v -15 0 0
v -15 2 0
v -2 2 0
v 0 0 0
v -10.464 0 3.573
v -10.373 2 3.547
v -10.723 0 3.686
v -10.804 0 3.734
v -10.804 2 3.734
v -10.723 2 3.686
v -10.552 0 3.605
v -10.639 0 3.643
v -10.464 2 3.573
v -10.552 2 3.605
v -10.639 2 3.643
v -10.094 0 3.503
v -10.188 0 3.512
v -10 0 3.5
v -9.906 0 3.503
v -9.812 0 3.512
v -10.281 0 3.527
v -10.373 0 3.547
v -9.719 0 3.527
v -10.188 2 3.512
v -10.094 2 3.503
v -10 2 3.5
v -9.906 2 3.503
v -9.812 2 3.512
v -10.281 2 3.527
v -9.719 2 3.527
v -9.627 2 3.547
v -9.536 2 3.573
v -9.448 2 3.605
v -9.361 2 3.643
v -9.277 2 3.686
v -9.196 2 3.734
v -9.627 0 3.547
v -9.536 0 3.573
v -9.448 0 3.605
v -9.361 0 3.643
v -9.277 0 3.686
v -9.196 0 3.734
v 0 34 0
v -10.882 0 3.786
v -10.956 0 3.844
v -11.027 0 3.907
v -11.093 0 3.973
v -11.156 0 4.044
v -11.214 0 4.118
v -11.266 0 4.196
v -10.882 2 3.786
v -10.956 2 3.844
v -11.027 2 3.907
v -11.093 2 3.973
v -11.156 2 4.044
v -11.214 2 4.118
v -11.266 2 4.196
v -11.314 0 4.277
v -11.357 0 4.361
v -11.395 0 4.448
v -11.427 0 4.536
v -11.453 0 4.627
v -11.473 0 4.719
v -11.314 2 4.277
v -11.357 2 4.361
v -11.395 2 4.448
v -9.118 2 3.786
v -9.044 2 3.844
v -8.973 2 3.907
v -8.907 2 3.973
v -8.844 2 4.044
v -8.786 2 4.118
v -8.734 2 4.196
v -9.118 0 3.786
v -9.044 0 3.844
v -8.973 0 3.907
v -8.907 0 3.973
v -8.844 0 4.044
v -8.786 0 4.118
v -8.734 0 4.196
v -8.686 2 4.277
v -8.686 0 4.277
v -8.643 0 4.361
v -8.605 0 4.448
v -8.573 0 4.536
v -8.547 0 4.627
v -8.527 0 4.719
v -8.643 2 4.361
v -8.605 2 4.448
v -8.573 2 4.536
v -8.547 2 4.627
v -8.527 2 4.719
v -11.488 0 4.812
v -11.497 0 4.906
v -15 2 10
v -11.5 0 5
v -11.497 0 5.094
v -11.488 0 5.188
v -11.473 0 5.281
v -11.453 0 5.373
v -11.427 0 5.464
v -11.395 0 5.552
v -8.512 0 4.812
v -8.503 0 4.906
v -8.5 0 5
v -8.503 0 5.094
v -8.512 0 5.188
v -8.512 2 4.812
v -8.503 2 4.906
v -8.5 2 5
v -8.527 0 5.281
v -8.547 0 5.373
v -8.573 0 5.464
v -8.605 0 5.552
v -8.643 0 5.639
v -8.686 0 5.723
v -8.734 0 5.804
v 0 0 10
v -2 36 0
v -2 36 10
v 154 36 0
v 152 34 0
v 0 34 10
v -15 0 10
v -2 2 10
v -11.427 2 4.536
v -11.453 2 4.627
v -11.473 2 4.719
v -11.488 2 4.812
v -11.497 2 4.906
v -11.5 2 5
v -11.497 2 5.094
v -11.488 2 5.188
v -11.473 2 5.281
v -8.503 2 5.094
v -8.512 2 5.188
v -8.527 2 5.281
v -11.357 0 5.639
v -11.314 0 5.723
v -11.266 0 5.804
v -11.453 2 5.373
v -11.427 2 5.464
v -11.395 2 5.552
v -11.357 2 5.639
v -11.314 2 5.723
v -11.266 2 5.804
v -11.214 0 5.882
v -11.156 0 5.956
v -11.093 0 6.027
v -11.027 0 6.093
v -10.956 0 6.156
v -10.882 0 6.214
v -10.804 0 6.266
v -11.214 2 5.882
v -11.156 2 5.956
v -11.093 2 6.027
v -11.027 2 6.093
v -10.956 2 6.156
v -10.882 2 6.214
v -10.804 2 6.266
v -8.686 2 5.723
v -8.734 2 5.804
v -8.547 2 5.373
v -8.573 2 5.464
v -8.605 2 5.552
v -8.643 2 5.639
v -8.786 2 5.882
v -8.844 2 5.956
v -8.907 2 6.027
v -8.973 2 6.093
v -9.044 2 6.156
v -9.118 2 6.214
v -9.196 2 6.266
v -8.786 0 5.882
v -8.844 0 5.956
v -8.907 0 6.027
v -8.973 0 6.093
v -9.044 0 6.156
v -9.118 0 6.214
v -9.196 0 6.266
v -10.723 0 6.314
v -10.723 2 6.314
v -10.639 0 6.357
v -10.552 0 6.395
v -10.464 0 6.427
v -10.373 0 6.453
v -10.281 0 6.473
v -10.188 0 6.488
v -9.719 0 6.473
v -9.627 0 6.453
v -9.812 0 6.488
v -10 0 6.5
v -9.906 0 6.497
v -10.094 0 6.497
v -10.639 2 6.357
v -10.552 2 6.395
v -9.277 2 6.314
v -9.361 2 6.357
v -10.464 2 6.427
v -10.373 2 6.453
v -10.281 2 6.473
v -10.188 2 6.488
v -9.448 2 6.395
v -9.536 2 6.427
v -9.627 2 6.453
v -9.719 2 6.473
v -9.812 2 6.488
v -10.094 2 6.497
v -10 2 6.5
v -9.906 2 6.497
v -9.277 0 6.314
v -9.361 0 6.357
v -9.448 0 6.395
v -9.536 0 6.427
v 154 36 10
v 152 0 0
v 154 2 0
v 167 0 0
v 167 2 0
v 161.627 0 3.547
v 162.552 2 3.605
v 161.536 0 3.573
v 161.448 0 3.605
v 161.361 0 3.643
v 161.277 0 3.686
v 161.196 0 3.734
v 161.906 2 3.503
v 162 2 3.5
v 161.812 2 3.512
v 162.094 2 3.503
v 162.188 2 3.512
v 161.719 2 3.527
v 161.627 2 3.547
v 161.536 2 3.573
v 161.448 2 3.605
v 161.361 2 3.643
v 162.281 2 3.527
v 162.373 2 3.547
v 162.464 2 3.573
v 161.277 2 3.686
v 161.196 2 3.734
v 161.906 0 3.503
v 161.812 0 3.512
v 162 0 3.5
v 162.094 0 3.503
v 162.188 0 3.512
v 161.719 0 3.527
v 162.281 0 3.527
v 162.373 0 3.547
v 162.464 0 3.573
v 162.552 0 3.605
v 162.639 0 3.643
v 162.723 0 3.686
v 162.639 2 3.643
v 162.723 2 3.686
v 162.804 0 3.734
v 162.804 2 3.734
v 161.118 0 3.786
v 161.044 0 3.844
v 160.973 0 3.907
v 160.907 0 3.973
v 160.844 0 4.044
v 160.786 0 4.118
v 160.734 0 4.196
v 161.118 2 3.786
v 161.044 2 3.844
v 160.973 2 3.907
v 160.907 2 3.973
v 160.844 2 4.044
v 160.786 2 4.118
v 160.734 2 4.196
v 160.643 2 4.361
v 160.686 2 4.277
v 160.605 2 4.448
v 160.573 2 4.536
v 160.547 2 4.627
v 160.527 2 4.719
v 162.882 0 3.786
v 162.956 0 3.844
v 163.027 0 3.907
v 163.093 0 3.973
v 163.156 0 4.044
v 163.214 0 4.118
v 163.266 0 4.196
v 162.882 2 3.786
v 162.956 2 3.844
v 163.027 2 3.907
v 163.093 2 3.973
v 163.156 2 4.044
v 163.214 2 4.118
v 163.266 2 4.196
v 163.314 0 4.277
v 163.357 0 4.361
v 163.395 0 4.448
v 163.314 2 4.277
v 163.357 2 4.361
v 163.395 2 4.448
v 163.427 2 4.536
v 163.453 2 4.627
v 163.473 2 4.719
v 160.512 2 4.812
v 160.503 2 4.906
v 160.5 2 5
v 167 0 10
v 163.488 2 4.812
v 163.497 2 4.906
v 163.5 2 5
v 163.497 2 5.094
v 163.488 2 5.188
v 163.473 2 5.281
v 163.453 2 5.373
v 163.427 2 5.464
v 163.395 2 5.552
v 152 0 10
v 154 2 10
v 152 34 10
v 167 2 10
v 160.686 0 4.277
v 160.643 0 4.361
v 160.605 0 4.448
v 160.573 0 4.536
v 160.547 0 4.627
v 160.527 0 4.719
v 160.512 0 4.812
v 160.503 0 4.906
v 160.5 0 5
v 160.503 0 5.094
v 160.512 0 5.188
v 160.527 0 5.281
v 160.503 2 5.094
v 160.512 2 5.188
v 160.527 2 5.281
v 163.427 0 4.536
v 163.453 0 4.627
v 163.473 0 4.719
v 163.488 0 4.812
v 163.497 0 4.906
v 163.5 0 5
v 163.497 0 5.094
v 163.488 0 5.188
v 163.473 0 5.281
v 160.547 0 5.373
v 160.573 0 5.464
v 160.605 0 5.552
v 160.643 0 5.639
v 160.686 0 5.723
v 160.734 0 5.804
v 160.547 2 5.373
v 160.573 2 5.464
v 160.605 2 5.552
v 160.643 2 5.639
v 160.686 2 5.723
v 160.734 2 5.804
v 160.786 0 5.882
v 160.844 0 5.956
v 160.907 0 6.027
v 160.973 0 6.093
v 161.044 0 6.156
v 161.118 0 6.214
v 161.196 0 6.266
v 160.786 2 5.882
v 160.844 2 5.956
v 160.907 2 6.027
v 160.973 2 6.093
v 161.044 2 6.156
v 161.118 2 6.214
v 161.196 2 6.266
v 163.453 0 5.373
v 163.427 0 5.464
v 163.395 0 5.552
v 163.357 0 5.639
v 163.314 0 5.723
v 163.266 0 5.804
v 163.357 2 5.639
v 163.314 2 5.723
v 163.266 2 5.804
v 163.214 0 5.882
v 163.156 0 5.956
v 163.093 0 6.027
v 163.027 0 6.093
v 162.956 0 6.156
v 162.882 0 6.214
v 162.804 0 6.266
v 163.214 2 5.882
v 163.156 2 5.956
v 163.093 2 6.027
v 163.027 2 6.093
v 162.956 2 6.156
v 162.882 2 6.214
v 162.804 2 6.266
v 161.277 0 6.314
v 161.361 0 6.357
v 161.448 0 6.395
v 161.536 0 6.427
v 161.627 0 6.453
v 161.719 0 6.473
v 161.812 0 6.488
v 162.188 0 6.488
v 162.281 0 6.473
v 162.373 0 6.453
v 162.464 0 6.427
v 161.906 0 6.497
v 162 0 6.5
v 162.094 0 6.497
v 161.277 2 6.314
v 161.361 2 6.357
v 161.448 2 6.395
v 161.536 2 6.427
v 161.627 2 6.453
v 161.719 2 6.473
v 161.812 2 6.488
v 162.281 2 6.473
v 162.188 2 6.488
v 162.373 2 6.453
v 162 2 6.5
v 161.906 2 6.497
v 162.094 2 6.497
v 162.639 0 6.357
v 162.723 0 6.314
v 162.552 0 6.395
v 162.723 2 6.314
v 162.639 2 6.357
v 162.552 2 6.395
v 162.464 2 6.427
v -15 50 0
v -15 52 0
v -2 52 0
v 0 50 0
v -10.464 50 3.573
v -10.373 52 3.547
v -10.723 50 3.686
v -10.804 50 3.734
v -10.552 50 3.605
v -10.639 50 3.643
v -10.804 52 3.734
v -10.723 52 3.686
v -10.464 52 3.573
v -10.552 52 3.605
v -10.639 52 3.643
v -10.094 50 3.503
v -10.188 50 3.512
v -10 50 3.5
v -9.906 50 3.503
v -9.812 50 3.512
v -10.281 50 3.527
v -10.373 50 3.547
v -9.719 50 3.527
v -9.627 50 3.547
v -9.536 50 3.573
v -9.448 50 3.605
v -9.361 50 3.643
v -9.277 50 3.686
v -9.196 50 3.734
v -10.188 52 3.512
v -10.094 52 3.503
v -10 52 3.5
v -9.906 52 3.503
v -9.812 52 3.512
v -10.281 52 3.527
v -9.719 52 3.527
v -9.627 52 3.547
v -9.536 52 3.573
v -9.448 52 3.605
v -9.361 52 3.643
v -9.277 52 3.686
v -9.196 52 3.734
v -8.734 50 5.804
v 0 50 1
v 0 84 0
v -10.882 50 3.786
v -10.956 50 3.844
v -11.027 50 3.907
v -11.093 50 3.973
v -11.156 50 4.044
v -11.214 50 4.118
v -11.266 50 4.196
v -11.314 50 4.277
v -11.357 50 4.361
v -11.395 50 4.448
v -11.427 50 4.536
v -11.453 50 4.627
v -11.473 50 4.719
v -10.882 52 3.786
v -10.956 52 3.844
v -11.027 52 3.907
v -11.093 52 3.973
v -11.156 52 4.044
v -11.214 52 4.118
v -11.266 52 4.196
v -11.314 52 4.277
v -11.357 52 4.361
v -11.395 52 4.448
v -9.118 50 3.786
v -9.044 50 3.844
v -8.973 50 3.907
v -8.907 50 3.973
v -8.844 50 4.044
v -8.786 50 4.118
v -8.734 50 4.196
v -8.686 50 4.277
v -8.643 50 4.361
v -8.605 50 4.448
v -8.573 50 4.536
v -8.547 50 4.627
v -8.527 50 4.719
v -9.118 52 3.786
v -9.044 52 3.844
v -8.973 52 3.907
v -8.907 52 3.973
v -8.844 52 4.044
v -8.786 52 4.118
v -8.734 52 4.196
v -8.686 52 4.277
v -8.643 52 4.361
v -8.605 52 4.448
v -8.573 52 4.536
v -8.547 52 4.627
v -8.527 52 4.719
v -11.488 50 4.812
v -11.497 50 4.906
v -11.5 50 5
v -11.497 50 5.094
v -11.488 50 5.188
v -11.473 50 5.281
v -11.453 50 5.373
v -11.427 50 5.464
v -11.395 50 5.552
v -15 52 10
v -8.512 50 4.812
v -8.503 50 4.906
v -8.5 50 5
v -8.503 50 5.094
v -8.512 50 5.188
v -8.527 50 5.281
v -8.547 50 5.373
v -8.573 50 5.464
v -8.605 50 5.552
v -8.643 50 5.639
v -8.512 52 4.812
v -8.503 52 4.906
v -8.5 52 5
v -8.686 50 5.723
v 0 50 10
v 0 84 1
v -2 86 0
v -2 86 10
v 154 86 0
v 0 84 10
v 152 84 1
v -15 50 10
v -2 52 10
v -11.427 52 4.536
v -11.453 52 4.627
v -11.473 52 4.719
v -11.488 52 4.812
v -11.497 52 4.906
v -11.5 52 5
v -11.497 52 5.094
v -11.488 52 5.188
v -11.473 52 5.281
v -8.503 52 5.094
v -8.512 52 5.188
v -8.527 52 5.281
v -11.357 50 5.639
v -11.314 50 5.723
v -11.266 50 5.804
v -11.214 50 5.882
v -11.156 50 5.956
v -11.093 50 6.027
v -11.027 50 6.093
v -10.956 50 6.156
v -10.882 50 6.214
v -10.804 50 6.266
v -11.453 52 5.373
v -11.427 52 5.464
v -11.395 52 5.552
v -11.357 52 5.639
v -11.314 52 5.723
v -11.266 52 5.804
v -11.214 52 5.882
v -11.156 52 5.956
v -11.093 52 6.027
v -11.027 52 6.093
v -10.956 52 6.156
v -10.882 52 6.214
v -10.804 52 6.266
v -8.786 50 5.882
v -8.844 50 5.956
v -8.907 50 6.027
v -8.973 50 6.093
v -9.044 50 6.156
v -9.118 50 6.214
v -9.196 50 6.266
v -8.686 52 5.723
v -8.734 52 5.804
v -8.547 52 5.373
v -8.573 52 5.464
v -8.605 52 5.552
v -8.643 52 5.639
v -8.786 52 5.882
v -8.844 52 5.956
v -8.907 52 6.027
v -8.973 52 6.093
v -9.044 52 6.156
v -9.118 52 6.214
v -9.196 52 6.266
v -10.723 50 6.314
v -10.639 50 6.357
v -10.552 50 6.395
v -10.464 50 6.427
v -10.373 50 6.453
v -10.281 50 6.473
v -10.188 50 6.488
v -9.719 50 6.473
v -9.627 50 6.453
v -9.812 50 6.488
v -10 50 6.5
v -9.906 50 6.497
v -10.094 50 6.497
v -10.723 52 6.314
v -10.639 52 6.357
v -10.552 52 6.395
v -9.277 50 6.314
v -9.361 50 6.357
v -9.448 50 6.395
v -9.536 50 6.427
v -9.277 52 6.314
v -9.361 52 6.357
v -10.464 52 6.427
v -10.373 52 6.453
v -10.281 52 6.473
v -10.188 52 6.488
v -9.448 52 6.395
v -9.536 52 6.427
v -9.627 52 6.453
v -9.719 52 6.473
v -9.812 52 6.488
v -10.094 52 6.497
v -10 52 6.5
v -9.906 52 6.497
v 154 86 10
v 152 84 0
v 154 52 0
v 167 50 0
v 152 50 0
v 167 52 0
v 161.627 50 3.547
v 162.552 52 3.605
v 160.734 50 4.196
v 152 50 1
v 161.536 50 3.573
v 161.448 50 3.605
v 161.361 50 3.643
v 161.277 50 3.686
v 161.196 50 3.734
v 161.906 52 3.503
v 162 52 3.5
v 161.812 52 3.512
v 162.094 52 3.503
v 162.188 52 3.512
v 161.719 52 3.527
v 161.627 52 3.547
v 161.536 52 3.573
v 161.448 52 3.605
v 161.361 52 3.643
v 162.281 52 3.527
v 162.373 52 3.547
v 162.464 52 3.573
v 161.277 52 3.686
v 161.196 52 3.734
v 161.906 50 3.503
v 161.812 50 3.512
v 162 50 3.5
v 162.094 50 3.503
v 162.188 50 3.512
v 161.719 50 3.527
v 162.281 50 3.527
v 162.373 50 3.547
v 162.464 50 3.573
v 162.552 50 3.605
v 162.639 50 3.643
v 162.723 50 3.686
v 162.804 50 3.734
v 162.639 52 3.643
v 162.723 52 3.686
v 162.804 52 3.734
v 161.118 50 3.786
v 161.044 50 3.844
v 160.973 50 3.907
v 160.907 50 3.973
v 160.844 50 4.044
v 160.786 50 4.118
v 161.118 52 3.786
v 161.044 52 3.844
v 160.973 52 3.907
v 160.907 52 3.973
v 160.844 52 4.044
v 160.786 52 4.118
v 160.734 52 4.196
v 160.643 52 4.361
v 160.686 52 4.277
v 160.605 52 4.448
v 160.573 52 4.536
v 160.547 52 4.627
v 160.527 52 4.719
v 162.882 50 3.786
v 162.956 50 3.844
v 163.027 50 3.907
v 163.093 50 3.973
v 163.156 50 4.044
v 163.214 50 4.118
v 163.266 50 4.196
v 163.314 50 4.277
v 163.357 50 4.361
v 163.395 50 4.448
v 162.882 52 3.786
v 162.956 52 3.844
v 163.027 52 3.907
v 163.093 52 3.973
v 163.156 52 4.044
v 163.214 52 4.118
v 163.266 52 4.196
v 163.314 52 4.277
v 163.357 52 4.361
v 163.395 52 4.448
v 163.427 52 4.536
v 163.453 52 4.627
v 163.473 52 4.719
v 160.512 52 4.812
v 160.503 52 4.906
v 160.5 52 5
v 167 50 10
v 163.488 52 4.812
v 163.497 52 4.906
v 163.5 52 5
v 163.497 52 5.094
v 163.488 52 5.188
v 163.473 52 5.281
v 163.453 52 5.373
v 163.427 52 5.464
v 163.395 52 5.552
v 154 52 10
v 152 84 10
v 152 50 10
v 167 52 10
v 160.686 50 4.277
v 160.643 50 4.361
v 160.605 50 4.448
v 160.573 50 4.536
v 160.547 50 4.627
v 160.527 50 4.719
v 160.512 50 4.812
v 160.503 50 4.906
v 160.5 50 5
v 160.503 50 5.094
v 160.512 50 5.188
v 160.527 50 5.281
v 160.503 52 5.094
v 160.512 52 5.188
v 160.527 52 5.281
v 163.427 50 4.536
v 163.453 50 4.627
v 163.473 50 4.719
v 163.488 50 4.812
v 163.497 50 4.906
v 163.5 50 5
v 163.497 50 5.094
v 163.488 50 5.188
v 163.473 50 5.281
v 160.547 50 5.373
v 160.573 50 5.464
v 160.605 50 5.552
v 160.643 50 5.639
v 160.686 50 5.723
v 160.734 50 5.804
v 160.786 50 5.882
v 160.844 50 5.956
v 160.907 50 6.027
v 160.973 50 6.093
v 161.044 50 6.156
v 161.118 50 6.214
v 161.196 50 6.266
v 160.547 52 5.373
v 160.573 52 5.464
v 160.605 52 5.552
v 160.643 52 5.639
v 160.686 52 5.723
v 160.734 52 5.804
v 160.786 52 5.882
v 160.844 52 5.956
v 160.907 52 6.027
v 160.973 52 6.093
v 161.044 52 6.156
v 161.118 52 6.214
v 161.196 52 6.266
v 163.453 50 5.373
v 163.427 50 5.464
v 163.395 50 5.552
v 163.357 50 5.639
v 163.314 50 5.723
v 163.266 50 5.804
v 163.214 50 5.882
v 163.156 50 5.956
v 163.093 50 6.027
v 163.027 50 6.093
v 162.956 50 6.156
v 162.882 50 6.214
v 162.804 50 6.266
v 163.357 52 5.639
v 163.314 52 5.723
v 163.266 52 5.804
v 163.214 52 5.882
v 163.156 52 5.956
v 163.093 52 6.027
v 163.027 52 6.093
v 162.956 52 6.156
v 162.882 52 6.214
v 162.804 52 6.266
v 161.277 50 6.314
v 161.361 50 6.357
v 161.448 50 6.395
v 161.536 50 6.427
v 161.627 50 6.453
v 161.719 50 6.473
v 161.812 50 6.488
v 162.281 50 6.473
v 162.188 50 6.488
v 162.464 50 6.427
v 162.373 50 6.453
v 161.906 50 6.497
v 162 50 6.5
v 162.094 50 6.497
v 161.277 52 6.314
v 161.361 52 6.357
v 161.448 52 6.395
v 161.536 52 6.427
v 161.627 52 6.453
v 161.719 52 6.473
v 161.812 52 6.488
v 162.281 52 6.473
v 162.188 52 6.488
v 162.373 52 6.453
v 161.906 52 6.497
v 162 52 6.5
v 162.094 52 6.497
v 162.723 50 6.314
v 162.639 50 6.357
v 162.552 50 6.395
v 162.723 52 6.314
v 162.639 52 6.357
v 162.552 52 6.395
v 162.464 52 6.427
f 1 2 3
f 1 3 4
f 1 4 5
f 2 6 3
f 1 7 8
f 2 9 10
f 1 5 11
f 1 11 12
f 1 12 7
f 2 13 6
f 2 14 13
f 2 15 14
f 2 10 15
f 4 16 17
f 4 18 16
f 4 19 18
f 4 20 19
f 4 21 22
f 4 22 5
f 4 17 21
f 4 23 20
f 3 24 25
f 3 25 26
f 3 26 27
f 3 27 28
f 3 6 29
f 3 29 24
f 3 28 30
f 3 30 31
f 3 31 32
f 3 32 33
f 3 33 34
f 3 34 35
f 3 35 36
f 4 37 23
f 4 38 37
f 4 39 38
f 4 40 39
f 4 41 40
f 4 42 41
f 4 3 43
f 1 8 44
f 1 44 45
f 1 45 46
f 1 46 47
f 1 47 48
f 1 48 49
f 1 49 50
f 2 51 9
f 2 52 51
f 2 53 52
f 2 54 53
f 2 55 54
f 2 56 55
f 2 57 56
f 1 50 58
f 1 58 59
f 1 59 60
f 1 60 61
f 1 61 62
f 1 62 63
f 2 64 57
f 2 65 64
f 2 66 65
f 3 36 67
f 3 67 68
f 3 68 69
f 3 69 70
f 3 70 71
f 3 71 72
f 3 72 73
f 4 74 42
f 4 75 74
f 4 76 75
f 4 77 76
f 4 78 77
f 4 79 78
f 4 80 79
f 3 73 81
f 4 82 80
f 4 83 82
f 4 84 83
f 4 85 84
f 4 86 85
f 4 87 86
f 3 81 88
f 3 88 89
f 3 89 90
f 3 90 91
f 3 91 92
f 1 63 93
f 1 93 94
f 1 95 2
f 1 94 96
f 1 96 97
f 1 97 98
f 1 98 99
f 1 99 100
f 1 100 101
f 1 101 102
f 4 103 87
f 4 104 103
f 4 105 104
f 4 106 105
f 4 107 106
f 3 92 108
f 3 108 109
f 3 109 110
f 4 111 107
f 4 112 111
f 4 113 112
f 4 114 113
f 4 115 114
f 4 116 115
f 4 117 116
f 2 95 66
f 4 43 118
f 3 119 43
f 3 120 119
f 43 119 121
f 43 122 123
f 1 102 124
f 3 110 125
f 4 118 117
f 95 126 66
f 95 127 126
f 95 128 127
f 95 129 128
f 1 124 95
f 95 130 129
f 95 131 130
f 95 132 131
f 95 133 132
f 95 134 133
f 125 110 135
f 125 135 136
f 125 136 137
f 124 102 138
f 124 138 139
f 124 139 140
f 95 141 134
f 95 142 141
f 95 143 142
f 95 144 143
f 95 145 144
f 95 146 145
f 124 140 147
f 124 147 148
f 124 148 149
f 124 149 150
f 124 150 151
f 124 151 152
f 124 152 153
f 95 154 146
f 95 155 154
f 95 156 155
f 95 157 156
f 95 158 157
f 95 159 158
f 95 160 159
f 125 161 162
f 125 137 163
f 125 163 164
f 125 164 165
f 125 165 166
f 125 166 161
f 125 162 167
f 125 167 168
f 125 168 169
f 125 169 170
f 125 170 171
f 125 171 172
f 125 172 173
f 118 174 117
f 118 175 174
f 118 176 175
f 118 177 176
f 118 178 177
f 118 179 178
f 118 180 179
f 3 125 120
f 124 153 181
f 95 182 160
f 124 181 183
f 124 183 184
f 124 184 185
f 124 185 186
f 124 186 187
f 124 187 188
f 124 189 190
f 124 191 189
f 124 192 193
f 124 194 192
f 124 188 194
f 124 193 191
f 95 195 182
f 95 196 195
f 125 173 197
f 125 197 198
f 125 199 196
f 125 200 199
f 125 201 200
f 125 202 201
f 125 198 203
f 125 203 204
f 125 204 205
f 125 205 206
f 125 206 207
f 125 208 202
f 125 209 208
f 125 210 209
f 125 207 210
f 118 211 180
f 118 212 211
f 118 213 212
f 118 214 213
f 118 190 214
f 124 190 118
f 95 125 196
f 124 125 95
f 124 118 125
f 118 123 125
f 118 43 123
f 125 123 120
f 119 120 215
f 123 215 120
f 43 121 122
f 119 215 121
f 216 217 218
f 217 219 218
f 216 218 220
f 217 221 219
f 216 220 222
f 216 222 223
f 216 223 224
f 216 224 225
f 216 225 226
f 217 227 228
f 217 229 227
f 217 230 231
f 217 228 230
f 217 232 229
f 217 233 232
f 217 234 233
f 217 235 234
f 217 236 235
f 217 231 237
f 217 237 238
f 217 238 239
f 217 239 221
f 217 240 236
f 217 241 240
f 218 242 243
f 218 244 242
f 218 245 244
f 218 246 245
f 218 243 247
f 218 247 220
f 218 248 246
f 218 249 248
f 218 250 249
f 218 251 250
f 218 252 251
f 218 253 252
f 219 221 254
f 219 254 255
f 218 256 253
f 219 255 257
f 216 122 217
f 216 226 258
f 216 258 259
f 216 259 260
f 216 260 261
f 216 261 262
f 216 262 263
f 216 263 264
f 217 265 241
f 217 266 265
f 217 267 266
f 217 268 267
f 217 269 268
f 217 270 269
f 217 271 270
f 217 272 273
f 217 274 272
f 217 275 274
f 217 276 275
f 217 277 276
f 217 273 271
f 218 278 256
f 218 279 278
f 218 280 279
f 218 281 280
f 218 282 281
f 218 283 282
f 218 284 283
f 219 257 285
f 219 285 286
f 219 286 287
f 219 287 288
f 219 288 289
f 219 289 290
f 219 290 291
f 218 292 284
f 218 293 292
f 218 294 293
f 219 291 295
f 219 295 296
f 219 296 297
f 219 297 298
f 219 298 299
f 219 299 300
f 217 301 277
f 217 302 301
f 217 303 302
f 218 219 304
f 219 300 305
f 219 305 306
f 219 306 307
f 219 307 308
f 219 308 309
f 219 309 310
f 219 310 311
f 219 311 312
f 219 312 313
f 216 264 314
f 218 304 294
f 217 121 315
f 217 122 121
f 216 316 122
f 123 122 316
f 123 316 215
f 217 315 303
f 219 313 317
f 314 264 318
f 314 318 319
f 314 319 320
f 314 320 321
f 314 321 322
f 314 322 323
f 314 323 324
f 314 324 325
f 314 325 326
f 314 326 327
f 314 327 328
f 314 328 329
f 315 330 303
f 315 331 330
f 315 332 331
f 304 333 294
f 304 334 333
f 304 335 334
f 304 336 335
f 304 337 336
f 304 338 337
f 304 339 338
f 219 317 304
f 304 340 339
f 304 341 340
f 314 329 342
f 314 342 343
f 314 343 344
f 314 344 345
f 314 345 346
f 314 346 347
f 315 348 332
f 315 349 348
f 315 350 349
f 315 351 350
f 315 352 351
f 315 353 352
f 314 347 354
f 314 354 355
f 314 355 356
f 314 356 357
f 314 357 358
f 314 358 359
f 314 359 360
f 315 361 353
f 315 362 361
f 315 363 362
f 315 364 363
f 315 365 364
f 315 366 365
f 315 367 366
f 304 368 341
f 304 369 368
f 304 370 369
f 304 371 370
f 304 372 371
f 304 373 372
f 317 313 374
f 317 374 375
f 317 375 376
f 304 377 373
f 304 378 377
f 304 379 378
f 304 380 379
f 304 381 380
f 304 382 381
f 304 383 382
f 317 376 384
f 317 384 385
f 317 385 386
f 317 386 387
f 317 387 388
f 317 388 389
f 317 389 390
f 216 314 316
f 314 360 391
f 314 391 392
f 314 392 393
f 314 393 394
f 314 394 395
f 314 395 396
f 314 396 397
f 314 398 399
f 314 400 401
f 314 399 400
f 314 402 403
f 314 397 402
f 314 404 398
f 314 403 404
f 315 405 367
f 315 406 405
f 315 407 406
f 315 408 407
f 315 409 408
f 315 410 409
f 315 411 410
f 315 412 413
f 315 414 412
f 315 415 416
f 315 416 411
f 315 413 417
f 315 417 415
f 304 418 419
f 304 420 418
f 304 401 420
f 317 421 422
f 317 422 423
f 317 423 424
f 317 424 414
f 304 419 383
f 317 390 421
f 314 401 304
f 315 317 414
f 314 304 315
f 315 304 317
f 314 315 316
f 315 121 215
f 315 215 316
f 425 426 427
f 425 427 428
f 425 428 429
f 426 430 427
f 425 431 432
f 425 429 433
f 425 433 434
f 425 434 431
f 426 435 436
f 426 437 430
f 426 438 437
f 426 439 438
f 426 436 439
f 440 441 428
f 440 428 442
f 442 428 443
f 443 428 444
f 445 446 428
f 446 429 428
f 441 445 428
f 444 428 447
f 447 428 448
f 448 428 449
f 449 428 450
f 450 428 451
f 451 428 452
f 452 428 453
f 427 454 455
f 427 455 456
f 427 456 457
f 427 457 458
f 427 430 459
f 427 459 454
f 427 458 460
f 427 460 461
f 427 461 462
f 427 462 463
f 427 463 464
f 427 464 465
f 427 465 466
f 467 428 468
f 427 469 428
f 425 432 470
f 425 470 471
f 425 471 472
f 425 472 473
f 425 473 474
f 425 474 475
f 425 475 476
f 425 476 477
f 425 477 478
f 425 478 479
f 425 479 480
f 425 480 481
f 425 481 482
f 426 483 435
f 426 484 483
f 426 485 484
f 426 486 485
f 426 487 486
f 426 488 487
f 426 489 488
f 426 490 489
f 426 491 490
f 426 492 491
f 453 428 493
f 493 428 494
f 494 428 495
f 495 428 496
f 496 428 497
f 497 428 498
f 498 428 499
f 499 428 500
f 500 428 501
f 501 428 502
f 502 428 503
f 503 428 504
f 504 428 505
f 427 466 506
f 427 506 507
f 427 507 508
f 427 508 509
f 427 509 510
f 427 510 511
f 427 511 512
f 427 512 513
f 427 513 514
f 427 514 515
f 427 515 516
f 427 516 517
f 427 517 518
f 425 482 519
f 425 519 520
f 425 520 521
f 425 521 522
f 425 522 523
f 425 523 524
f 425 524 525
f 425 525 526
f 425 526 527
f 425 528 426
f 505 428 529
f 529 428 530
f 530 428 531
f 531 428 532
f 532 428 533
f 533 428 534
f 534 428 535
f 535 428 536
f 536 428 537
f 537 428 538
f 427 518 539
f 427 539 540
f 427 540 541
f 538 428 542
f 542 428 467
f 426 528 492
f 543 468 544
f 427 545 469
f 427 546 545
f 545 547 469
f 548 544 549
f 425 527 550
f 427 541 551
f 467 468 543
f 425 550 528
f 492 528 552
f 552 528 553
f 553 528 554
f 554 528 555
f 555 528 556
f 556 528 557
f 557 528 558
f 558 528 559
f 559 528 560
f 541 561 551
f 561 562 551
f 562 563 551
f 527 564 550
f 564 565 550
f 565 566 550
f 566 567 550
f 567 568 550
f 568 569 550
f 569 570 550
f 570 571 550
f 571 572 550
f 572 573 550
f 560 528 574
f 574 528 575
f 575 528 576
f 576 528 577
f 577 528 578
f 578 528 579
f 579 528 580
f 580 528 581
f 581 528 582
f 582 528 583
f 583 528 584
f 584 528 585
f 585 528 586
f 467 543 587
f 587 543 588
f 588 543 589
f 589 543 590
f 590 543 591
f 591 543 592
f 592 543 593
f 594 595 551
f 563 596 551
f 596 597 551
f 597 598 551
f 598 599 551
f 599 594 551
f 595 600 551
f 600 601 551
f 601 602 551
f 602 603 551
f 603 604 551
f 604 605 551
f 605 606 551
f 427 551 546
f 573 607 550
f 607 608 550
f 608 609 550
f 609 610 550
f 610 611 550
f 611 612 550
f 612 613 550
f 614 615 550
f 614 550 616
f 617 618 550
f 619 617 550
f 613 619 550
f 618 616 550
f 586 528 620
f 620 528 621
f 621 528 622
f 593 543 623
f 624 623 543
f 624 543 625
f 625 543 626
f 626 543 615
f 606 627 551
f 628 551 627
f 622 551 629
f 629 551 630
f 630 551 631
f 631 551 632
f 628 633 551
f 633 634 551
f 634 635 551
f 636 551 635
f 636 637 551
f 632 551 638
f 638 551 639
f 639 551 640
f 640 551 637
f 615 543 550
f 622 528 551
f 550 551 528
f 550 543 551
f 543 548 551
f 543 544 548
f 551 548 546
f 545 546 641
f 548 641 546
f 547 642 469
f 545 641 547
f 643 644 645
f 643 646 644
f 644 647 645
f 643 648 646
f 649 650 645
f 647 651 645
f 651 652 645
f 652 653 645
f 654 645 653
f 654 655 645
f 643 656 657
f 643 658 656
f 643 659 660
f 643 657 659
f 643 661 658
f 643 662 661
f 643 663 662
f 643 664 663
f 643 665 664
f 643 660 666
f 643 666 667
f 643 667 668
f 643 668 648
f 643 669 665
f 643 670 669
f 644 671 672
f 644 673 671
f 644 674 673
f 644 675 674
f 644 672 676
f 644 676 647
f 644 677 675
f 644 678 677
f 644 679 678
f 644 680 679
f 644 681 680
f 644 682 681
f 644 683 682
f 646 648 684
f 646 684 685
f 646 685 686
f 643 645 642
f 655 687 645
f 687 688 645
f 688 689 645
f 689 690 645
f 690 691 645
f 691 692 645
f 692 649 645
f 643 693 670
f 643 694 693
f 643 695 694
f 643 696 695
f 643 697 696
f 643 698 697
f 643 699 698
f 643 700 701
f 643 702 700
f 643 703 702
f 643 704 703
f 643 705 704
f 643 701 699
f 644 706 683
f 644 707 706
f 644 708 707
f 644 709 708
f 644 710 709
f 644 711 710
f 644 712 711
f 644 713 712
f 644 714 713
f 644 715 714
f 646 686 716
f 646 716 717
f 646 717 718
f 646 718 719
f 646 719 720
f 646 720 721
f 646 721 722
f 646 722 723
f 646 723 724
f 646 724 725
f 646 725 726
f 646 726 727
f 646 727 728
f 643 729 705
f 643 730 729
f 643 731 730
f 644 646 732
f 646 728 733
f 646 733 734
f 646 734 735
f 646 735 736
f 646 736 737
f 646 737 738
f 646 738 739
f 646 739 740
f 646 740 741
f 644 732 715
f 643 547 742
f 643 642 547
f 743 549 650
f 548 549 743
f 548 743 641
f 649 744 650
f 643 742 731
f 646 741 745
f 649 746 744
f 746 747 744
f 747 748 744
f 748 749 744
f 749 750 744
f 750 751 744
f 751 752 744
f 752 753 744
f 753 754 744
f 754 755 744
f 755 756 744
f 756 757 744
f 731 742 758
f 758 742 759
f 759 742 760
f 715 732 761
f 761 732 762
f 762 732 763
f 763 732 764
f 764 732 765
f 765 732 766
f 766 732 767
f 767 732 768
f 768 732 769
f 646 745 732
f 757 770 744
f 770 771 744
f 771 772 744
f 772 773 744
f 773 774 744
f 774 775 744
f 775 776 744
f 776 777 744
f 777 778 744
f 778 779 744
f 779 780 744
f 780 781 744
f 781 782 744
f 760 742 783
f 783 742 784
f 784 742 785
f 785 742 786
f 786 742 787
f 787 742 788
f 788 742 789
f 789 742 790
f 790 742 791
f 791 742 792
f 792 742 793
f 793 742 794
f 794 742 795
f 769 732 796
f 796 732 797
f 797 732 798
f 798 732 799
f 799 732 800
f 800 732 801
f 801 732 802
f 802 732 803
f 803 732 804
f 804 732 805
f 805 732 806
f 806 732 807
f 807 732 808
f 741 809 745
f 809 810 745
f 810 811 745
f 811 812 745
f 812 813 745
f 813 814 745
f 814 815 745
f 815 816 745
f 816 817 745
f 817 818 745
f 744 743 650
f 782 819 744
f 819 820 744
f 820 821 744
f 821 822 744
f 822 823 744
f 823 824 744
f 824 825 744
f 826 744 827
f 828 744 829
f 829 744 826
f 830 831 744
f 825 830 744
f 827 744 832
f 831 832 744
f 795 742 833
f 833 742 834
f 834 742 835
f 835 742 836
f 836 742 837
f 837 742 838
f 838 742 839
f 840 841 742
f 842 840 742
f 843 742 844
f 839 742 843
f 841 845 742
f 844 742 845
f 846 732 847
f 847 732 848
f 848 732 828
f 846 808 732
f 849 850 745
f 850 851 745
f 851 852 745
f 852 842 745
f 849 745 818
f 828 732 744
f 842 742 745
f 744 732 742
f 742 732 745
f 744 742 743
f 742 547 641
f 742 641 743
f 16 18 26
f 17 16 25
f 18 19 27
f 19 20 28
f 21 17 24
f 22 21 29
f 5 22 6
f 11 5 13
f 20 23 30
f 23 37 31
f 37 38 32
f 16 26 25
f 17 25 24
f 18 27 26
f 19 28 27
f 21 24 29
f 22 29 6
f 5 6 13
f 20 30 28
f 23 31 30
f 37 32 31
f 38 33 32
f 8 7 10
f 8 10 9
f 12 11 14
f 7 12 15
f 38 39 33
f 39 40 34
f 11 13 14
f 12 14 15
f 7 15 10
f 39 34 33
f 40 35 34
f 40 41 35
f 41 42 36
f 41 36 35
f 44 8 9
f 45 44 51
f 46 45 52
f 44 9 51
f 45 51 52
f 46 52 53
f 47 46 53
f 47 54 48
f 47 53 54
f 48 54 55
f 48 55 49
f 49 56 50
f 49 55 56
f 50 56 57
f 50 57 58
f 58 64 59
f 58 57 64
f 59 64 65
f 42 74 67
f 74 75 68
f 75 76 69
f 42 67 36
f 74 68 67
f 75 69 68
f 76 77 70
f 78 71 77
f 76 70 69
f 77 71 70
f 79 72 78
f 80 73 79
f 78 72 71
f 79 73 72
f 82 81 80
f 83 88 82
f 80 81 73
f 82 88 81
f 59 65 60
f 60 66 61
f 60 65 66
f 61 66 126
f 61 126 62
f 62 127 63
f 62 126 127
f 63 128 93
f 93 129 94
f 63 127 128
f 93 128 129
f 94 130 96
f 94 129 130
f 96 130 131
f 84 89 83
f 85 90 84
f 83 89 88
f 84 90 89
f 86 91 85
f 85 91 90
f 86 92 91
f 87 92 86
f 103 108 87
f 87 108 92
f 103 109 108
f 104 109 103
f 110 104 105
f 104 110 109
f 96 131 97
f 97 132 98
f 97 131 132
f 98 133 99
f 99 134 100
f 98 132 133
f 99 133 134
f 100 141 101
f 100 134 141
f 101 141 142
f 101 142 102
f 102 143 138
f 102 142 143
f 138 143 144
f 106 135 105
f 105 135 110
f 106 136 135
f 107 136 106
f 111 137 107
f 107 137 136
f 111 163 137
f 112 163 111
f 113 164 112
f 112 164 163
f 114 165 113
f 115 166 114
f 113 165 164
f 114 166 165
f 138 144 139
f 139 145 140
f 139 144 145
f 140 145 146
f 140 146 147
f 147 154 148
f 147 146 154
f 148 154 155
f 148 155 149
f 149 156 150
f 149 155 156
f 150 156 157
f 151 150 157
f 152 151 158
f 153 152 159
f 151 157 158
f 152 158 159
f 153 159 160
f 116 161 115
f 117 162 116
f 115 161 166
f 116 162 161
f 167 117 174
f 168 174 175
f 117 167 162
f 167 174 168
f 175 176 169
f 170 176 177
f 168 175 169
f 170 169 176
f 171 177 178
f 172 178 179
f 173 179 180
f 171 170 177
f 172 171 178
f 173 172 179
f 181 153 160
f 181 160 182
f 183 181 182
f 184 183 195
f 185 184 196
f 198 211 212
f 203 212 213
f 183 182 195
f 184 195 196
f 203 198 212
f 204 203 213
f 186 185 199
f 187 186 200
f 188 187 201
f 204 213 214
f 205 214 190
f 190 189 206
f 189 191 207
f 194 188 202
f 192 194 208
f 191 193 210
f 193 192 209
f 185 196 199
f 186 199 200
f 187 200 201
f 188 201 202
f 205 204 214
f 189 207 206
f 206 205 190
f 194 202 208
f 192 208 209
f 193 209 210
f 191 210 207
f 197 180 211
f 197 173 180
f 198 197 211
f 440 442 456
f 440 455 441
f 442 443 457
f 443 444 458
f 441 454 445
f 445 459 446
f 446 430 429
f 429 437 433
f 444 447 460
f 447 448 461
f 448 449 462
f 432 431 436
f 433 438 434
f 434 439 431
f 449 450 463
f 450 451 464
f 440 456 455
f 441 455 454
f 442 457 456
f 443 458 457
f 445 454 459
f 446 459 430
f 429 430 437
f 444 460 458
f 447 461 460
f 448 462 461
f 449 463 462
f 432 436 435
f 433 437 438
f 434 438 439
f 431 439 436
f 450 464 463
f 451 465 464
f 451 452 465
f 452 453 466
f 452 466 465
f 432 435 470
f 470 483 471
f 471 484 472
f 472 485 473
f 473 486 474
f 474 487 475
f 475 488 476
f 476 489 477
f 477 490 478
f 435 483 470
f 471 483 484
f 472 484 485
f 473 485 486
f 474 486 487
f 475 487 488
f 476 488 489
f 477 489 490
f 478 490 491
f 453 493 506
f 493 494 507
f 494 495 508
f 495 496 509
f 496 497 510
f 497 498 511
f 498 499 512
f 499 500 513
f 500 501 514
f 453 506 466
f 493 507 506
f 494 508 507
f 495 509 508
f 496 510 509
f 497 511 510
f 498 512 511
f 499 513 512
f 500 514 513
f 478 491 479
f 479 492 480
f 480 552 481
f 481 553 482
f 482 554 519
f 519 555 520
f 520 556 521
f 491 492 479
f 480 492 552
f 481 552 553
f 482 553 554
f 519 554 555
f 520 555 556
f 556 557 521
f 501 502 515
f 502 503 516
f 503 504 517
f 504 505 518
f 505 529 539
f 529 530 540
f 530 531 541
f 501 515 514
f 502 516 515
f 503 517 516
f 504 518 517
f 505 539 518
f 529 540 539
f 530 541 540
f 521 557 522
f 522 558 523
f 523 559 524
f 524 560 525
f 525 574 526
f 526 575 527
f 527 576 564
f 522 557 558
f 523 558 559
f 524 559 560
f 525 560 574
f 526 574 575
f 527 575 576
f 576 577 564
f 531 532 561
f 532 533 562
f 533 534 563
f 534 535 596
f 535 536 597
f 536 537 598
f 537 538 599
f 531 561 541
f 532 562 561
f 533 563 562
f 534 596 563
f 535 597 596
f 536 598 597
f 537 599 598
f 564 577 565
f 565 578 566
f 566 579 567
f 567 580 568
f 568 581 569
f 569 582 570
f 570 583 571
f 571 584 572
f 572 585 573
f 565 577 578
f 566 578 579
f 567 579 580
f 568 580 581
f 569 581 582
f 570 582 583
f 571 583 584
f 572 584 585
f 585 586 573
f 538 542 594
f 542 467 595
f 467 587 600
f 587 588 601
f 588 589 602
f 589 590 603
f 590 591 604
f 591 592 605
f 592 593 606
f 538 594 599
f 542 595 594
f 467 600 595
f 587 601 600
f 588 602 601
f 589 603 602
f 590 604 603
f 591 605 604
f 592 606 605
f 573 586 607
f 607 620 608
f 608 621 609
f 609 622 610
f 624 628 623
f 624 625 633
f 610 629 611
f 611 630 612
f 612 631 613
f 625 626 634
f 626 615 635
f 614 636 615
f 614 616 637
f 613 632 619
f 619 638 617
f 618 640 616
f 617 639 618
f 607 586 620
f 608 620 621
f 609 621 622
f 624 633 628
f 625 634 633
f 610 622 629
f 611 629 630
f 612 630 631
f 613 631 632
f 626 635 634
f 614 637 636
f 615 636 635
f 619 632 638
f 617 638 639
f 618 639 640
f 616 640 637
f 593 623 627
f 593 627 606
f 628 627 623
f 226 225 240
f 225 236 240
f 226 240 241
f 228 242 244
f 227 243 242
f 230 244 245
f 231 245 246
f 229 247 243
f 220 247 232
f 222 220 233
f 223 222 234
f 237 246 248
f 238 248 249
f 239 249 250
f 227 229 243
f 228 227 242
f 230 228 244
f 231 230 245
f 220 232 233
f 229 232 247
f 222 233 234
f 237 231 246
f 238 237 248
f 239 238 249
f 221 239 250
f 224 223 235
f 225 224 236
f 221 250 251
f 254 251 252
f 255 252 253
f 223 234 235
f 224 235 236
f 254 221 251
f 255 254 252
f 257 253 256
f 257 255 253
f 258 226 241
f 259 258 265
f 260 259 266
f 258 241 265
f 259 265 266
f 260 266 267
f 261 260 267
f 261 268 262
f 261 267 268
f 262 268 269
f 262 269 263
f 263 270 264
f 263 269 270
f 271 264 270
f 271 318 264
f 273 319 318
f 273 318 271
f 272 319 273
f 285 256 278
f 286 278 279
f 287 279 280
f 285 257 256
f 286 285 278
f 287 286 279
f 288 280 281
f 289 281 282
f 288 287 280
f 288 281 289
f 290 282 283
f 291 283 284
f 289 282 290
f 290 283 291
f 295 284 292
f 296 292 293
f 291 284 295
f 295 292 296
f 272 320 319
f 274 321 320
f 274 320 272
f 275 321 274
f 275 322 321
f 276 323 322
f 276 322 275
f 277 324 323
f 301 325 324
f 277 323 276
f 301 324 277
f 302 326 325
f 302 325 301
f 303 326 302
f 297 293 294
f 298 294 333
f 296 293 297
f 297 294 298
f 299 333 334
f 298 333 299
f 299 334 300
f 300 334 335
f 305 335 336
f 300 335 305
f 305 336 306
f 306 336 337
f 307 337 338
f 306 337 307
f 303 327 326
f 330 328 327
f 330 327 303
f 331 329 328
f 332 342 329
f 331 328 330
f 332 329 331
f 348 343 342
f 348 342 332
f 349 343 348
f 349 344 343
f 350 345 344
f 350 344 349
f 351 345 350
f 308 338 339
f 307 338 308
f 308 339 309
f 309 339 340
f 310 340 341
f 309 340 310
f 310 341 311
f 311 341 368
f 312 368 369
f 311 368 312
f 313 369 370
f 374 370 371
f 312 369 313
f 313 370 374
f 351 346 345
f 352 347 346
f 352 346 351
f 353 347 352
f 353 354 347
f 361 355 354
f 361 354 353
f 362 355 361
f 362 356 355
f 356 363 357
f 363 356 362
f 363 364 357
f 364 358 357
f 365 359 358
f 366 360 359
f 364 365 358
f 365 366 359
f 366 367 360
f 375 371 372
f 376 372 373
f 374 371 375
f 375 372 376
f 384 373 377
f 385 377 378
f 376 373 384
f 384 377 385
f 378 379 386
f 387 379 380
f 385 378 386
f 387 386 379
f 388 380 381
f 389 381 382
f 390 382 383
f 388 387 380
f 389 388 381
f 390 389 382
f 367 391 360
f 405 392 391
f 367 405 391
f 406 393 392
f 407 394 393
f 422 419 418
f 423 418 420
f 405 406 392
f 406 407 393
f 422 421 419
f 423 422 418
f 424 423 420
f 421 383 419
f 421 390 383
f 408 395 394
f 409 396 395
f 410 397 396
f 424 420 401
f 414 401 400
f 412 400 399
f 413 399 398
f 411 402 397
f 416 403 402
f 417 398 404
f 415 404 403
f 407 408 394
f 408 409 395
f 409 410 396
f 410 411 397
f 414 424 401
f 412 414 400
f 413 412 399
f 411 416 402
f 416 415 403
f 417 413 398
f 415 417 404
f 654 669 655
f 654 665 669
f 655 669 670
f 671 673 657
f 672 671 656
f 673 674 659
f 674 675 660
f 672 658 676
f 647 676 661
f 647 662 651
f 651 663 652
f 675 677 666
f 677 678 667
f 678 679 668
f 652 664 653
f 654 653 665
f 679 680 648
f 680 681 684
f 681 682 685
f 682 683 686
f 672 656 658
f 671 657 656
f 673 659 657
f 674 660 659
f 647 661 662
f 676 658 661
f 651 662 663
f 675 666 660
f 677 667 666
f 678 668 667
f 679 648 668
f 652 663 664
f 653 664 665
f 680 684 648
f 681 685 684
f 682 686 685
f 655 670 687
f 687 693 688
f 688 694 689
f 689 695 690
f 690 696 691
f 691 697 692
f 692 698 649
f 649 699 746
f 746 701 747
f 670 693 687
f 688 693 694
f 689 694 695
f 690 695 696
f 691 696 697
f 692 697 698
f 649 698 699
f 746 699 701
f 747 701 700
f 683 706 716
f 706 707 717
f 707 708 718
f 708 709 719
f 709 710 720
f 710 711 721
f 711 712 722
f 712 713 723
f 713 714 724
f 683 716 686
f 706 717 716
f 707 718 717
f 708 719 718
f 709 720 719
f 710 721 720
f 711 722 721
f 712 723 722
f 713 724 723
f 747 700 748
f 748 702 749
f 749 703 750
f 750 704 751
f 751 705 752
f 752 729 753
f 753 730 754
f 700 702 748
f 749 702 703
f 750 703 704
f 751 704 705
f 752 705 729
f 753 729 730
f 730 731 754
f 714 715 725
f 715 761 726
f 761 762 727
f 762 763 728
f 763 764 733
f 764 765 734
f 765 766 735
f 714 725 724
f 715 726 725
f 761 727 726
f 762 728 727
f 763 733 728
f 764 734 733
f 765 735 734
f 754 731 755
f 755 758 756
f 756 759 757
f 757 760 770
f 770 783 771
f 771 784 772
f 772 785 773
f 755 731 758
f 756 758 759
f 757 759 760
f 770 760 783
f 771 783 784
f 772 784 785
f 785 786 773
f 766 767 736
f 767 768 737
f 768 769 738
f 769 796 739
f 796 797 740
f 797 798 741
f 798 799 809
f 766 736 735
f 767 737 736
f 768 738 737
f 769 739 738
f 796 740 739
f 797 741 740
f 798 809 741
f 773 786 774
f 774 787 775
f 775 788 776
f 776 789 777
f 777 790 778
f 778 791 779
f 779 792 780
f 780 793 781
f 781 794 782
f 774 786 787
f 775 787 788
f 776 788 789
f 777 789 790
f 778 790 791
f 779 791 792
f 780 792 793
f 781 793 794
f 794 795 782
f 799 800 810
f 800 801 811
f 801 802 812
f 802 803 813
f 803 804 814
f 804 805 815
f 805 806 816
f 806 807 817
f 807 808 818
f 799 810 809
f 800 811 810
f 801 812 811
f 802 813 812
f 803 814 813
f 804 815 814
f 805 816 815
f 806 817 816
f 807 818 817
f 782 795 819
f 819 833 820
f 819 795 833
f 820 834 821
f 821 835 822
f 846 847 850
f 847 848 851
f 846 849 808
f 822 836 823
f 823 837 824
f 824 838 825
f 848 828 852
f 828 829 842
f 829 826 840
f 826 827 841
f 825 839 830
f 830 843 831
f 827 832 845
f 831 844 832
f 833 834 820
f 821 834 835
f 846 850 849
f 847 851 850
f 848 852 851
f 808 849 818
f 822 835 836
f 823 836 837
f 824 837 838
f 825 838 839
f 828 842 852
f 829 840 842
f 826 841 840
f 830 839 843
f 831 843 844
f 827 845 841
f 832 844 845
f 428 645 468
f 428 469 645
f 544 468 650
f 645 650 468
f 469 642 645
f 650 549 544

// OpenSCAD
$fn = 100;

module bracket_poly() {
    polygon(points=[
        [0, 0],
        [0, 34],
        [152, 34],
        [152, 0],
        [162, 0],
    // Marker: x=162, y=0
        [167, 0],
        [167, 2],
        [154, 2],
        [154, 36],
        [-2, 36],
        [-2, 2],
        [-15, 2],
        [-15, 0],
        [-10, 0],
    // Marker: x=-10, y=0
        [0, 0],
        [0, 0]
    ]);
}

module bracket() {
    difference() {
        linear_extrude(height=10) 
        bracket_poly();
        translate([-10, 3, 5])
        rotate([90, 0, 0])
        cylinder(h = 5, d = 3);
        translate([162, 3, 5])
        rotate([90, 0, 0])
        cylinder(h = 5, d = 3);
    }
}

bracket();

// Bracket with back plate
translate([0, 50, 0]) {
    bracket();
    linear_extrude(height=1)
    square([152, 34]);
}

/*
// https://logo2openscad.becdetat.com/
make "width 200
make "height 40

pd
fd :height
rt 90
fd :width
rt 90
fd :height
lt 90
fd 10
EXTMARKER
fd 5
lt 90
fd 2
lt 90
fd 15 - 3
rt 90
fd :height
lt 90
fd :width + 3 + 3
lt 90
fd :height
rt 90
fd 15 - 3
lt 90
fd 3
lt 90
fd 5
EXTMARKER
fd 10
*/
